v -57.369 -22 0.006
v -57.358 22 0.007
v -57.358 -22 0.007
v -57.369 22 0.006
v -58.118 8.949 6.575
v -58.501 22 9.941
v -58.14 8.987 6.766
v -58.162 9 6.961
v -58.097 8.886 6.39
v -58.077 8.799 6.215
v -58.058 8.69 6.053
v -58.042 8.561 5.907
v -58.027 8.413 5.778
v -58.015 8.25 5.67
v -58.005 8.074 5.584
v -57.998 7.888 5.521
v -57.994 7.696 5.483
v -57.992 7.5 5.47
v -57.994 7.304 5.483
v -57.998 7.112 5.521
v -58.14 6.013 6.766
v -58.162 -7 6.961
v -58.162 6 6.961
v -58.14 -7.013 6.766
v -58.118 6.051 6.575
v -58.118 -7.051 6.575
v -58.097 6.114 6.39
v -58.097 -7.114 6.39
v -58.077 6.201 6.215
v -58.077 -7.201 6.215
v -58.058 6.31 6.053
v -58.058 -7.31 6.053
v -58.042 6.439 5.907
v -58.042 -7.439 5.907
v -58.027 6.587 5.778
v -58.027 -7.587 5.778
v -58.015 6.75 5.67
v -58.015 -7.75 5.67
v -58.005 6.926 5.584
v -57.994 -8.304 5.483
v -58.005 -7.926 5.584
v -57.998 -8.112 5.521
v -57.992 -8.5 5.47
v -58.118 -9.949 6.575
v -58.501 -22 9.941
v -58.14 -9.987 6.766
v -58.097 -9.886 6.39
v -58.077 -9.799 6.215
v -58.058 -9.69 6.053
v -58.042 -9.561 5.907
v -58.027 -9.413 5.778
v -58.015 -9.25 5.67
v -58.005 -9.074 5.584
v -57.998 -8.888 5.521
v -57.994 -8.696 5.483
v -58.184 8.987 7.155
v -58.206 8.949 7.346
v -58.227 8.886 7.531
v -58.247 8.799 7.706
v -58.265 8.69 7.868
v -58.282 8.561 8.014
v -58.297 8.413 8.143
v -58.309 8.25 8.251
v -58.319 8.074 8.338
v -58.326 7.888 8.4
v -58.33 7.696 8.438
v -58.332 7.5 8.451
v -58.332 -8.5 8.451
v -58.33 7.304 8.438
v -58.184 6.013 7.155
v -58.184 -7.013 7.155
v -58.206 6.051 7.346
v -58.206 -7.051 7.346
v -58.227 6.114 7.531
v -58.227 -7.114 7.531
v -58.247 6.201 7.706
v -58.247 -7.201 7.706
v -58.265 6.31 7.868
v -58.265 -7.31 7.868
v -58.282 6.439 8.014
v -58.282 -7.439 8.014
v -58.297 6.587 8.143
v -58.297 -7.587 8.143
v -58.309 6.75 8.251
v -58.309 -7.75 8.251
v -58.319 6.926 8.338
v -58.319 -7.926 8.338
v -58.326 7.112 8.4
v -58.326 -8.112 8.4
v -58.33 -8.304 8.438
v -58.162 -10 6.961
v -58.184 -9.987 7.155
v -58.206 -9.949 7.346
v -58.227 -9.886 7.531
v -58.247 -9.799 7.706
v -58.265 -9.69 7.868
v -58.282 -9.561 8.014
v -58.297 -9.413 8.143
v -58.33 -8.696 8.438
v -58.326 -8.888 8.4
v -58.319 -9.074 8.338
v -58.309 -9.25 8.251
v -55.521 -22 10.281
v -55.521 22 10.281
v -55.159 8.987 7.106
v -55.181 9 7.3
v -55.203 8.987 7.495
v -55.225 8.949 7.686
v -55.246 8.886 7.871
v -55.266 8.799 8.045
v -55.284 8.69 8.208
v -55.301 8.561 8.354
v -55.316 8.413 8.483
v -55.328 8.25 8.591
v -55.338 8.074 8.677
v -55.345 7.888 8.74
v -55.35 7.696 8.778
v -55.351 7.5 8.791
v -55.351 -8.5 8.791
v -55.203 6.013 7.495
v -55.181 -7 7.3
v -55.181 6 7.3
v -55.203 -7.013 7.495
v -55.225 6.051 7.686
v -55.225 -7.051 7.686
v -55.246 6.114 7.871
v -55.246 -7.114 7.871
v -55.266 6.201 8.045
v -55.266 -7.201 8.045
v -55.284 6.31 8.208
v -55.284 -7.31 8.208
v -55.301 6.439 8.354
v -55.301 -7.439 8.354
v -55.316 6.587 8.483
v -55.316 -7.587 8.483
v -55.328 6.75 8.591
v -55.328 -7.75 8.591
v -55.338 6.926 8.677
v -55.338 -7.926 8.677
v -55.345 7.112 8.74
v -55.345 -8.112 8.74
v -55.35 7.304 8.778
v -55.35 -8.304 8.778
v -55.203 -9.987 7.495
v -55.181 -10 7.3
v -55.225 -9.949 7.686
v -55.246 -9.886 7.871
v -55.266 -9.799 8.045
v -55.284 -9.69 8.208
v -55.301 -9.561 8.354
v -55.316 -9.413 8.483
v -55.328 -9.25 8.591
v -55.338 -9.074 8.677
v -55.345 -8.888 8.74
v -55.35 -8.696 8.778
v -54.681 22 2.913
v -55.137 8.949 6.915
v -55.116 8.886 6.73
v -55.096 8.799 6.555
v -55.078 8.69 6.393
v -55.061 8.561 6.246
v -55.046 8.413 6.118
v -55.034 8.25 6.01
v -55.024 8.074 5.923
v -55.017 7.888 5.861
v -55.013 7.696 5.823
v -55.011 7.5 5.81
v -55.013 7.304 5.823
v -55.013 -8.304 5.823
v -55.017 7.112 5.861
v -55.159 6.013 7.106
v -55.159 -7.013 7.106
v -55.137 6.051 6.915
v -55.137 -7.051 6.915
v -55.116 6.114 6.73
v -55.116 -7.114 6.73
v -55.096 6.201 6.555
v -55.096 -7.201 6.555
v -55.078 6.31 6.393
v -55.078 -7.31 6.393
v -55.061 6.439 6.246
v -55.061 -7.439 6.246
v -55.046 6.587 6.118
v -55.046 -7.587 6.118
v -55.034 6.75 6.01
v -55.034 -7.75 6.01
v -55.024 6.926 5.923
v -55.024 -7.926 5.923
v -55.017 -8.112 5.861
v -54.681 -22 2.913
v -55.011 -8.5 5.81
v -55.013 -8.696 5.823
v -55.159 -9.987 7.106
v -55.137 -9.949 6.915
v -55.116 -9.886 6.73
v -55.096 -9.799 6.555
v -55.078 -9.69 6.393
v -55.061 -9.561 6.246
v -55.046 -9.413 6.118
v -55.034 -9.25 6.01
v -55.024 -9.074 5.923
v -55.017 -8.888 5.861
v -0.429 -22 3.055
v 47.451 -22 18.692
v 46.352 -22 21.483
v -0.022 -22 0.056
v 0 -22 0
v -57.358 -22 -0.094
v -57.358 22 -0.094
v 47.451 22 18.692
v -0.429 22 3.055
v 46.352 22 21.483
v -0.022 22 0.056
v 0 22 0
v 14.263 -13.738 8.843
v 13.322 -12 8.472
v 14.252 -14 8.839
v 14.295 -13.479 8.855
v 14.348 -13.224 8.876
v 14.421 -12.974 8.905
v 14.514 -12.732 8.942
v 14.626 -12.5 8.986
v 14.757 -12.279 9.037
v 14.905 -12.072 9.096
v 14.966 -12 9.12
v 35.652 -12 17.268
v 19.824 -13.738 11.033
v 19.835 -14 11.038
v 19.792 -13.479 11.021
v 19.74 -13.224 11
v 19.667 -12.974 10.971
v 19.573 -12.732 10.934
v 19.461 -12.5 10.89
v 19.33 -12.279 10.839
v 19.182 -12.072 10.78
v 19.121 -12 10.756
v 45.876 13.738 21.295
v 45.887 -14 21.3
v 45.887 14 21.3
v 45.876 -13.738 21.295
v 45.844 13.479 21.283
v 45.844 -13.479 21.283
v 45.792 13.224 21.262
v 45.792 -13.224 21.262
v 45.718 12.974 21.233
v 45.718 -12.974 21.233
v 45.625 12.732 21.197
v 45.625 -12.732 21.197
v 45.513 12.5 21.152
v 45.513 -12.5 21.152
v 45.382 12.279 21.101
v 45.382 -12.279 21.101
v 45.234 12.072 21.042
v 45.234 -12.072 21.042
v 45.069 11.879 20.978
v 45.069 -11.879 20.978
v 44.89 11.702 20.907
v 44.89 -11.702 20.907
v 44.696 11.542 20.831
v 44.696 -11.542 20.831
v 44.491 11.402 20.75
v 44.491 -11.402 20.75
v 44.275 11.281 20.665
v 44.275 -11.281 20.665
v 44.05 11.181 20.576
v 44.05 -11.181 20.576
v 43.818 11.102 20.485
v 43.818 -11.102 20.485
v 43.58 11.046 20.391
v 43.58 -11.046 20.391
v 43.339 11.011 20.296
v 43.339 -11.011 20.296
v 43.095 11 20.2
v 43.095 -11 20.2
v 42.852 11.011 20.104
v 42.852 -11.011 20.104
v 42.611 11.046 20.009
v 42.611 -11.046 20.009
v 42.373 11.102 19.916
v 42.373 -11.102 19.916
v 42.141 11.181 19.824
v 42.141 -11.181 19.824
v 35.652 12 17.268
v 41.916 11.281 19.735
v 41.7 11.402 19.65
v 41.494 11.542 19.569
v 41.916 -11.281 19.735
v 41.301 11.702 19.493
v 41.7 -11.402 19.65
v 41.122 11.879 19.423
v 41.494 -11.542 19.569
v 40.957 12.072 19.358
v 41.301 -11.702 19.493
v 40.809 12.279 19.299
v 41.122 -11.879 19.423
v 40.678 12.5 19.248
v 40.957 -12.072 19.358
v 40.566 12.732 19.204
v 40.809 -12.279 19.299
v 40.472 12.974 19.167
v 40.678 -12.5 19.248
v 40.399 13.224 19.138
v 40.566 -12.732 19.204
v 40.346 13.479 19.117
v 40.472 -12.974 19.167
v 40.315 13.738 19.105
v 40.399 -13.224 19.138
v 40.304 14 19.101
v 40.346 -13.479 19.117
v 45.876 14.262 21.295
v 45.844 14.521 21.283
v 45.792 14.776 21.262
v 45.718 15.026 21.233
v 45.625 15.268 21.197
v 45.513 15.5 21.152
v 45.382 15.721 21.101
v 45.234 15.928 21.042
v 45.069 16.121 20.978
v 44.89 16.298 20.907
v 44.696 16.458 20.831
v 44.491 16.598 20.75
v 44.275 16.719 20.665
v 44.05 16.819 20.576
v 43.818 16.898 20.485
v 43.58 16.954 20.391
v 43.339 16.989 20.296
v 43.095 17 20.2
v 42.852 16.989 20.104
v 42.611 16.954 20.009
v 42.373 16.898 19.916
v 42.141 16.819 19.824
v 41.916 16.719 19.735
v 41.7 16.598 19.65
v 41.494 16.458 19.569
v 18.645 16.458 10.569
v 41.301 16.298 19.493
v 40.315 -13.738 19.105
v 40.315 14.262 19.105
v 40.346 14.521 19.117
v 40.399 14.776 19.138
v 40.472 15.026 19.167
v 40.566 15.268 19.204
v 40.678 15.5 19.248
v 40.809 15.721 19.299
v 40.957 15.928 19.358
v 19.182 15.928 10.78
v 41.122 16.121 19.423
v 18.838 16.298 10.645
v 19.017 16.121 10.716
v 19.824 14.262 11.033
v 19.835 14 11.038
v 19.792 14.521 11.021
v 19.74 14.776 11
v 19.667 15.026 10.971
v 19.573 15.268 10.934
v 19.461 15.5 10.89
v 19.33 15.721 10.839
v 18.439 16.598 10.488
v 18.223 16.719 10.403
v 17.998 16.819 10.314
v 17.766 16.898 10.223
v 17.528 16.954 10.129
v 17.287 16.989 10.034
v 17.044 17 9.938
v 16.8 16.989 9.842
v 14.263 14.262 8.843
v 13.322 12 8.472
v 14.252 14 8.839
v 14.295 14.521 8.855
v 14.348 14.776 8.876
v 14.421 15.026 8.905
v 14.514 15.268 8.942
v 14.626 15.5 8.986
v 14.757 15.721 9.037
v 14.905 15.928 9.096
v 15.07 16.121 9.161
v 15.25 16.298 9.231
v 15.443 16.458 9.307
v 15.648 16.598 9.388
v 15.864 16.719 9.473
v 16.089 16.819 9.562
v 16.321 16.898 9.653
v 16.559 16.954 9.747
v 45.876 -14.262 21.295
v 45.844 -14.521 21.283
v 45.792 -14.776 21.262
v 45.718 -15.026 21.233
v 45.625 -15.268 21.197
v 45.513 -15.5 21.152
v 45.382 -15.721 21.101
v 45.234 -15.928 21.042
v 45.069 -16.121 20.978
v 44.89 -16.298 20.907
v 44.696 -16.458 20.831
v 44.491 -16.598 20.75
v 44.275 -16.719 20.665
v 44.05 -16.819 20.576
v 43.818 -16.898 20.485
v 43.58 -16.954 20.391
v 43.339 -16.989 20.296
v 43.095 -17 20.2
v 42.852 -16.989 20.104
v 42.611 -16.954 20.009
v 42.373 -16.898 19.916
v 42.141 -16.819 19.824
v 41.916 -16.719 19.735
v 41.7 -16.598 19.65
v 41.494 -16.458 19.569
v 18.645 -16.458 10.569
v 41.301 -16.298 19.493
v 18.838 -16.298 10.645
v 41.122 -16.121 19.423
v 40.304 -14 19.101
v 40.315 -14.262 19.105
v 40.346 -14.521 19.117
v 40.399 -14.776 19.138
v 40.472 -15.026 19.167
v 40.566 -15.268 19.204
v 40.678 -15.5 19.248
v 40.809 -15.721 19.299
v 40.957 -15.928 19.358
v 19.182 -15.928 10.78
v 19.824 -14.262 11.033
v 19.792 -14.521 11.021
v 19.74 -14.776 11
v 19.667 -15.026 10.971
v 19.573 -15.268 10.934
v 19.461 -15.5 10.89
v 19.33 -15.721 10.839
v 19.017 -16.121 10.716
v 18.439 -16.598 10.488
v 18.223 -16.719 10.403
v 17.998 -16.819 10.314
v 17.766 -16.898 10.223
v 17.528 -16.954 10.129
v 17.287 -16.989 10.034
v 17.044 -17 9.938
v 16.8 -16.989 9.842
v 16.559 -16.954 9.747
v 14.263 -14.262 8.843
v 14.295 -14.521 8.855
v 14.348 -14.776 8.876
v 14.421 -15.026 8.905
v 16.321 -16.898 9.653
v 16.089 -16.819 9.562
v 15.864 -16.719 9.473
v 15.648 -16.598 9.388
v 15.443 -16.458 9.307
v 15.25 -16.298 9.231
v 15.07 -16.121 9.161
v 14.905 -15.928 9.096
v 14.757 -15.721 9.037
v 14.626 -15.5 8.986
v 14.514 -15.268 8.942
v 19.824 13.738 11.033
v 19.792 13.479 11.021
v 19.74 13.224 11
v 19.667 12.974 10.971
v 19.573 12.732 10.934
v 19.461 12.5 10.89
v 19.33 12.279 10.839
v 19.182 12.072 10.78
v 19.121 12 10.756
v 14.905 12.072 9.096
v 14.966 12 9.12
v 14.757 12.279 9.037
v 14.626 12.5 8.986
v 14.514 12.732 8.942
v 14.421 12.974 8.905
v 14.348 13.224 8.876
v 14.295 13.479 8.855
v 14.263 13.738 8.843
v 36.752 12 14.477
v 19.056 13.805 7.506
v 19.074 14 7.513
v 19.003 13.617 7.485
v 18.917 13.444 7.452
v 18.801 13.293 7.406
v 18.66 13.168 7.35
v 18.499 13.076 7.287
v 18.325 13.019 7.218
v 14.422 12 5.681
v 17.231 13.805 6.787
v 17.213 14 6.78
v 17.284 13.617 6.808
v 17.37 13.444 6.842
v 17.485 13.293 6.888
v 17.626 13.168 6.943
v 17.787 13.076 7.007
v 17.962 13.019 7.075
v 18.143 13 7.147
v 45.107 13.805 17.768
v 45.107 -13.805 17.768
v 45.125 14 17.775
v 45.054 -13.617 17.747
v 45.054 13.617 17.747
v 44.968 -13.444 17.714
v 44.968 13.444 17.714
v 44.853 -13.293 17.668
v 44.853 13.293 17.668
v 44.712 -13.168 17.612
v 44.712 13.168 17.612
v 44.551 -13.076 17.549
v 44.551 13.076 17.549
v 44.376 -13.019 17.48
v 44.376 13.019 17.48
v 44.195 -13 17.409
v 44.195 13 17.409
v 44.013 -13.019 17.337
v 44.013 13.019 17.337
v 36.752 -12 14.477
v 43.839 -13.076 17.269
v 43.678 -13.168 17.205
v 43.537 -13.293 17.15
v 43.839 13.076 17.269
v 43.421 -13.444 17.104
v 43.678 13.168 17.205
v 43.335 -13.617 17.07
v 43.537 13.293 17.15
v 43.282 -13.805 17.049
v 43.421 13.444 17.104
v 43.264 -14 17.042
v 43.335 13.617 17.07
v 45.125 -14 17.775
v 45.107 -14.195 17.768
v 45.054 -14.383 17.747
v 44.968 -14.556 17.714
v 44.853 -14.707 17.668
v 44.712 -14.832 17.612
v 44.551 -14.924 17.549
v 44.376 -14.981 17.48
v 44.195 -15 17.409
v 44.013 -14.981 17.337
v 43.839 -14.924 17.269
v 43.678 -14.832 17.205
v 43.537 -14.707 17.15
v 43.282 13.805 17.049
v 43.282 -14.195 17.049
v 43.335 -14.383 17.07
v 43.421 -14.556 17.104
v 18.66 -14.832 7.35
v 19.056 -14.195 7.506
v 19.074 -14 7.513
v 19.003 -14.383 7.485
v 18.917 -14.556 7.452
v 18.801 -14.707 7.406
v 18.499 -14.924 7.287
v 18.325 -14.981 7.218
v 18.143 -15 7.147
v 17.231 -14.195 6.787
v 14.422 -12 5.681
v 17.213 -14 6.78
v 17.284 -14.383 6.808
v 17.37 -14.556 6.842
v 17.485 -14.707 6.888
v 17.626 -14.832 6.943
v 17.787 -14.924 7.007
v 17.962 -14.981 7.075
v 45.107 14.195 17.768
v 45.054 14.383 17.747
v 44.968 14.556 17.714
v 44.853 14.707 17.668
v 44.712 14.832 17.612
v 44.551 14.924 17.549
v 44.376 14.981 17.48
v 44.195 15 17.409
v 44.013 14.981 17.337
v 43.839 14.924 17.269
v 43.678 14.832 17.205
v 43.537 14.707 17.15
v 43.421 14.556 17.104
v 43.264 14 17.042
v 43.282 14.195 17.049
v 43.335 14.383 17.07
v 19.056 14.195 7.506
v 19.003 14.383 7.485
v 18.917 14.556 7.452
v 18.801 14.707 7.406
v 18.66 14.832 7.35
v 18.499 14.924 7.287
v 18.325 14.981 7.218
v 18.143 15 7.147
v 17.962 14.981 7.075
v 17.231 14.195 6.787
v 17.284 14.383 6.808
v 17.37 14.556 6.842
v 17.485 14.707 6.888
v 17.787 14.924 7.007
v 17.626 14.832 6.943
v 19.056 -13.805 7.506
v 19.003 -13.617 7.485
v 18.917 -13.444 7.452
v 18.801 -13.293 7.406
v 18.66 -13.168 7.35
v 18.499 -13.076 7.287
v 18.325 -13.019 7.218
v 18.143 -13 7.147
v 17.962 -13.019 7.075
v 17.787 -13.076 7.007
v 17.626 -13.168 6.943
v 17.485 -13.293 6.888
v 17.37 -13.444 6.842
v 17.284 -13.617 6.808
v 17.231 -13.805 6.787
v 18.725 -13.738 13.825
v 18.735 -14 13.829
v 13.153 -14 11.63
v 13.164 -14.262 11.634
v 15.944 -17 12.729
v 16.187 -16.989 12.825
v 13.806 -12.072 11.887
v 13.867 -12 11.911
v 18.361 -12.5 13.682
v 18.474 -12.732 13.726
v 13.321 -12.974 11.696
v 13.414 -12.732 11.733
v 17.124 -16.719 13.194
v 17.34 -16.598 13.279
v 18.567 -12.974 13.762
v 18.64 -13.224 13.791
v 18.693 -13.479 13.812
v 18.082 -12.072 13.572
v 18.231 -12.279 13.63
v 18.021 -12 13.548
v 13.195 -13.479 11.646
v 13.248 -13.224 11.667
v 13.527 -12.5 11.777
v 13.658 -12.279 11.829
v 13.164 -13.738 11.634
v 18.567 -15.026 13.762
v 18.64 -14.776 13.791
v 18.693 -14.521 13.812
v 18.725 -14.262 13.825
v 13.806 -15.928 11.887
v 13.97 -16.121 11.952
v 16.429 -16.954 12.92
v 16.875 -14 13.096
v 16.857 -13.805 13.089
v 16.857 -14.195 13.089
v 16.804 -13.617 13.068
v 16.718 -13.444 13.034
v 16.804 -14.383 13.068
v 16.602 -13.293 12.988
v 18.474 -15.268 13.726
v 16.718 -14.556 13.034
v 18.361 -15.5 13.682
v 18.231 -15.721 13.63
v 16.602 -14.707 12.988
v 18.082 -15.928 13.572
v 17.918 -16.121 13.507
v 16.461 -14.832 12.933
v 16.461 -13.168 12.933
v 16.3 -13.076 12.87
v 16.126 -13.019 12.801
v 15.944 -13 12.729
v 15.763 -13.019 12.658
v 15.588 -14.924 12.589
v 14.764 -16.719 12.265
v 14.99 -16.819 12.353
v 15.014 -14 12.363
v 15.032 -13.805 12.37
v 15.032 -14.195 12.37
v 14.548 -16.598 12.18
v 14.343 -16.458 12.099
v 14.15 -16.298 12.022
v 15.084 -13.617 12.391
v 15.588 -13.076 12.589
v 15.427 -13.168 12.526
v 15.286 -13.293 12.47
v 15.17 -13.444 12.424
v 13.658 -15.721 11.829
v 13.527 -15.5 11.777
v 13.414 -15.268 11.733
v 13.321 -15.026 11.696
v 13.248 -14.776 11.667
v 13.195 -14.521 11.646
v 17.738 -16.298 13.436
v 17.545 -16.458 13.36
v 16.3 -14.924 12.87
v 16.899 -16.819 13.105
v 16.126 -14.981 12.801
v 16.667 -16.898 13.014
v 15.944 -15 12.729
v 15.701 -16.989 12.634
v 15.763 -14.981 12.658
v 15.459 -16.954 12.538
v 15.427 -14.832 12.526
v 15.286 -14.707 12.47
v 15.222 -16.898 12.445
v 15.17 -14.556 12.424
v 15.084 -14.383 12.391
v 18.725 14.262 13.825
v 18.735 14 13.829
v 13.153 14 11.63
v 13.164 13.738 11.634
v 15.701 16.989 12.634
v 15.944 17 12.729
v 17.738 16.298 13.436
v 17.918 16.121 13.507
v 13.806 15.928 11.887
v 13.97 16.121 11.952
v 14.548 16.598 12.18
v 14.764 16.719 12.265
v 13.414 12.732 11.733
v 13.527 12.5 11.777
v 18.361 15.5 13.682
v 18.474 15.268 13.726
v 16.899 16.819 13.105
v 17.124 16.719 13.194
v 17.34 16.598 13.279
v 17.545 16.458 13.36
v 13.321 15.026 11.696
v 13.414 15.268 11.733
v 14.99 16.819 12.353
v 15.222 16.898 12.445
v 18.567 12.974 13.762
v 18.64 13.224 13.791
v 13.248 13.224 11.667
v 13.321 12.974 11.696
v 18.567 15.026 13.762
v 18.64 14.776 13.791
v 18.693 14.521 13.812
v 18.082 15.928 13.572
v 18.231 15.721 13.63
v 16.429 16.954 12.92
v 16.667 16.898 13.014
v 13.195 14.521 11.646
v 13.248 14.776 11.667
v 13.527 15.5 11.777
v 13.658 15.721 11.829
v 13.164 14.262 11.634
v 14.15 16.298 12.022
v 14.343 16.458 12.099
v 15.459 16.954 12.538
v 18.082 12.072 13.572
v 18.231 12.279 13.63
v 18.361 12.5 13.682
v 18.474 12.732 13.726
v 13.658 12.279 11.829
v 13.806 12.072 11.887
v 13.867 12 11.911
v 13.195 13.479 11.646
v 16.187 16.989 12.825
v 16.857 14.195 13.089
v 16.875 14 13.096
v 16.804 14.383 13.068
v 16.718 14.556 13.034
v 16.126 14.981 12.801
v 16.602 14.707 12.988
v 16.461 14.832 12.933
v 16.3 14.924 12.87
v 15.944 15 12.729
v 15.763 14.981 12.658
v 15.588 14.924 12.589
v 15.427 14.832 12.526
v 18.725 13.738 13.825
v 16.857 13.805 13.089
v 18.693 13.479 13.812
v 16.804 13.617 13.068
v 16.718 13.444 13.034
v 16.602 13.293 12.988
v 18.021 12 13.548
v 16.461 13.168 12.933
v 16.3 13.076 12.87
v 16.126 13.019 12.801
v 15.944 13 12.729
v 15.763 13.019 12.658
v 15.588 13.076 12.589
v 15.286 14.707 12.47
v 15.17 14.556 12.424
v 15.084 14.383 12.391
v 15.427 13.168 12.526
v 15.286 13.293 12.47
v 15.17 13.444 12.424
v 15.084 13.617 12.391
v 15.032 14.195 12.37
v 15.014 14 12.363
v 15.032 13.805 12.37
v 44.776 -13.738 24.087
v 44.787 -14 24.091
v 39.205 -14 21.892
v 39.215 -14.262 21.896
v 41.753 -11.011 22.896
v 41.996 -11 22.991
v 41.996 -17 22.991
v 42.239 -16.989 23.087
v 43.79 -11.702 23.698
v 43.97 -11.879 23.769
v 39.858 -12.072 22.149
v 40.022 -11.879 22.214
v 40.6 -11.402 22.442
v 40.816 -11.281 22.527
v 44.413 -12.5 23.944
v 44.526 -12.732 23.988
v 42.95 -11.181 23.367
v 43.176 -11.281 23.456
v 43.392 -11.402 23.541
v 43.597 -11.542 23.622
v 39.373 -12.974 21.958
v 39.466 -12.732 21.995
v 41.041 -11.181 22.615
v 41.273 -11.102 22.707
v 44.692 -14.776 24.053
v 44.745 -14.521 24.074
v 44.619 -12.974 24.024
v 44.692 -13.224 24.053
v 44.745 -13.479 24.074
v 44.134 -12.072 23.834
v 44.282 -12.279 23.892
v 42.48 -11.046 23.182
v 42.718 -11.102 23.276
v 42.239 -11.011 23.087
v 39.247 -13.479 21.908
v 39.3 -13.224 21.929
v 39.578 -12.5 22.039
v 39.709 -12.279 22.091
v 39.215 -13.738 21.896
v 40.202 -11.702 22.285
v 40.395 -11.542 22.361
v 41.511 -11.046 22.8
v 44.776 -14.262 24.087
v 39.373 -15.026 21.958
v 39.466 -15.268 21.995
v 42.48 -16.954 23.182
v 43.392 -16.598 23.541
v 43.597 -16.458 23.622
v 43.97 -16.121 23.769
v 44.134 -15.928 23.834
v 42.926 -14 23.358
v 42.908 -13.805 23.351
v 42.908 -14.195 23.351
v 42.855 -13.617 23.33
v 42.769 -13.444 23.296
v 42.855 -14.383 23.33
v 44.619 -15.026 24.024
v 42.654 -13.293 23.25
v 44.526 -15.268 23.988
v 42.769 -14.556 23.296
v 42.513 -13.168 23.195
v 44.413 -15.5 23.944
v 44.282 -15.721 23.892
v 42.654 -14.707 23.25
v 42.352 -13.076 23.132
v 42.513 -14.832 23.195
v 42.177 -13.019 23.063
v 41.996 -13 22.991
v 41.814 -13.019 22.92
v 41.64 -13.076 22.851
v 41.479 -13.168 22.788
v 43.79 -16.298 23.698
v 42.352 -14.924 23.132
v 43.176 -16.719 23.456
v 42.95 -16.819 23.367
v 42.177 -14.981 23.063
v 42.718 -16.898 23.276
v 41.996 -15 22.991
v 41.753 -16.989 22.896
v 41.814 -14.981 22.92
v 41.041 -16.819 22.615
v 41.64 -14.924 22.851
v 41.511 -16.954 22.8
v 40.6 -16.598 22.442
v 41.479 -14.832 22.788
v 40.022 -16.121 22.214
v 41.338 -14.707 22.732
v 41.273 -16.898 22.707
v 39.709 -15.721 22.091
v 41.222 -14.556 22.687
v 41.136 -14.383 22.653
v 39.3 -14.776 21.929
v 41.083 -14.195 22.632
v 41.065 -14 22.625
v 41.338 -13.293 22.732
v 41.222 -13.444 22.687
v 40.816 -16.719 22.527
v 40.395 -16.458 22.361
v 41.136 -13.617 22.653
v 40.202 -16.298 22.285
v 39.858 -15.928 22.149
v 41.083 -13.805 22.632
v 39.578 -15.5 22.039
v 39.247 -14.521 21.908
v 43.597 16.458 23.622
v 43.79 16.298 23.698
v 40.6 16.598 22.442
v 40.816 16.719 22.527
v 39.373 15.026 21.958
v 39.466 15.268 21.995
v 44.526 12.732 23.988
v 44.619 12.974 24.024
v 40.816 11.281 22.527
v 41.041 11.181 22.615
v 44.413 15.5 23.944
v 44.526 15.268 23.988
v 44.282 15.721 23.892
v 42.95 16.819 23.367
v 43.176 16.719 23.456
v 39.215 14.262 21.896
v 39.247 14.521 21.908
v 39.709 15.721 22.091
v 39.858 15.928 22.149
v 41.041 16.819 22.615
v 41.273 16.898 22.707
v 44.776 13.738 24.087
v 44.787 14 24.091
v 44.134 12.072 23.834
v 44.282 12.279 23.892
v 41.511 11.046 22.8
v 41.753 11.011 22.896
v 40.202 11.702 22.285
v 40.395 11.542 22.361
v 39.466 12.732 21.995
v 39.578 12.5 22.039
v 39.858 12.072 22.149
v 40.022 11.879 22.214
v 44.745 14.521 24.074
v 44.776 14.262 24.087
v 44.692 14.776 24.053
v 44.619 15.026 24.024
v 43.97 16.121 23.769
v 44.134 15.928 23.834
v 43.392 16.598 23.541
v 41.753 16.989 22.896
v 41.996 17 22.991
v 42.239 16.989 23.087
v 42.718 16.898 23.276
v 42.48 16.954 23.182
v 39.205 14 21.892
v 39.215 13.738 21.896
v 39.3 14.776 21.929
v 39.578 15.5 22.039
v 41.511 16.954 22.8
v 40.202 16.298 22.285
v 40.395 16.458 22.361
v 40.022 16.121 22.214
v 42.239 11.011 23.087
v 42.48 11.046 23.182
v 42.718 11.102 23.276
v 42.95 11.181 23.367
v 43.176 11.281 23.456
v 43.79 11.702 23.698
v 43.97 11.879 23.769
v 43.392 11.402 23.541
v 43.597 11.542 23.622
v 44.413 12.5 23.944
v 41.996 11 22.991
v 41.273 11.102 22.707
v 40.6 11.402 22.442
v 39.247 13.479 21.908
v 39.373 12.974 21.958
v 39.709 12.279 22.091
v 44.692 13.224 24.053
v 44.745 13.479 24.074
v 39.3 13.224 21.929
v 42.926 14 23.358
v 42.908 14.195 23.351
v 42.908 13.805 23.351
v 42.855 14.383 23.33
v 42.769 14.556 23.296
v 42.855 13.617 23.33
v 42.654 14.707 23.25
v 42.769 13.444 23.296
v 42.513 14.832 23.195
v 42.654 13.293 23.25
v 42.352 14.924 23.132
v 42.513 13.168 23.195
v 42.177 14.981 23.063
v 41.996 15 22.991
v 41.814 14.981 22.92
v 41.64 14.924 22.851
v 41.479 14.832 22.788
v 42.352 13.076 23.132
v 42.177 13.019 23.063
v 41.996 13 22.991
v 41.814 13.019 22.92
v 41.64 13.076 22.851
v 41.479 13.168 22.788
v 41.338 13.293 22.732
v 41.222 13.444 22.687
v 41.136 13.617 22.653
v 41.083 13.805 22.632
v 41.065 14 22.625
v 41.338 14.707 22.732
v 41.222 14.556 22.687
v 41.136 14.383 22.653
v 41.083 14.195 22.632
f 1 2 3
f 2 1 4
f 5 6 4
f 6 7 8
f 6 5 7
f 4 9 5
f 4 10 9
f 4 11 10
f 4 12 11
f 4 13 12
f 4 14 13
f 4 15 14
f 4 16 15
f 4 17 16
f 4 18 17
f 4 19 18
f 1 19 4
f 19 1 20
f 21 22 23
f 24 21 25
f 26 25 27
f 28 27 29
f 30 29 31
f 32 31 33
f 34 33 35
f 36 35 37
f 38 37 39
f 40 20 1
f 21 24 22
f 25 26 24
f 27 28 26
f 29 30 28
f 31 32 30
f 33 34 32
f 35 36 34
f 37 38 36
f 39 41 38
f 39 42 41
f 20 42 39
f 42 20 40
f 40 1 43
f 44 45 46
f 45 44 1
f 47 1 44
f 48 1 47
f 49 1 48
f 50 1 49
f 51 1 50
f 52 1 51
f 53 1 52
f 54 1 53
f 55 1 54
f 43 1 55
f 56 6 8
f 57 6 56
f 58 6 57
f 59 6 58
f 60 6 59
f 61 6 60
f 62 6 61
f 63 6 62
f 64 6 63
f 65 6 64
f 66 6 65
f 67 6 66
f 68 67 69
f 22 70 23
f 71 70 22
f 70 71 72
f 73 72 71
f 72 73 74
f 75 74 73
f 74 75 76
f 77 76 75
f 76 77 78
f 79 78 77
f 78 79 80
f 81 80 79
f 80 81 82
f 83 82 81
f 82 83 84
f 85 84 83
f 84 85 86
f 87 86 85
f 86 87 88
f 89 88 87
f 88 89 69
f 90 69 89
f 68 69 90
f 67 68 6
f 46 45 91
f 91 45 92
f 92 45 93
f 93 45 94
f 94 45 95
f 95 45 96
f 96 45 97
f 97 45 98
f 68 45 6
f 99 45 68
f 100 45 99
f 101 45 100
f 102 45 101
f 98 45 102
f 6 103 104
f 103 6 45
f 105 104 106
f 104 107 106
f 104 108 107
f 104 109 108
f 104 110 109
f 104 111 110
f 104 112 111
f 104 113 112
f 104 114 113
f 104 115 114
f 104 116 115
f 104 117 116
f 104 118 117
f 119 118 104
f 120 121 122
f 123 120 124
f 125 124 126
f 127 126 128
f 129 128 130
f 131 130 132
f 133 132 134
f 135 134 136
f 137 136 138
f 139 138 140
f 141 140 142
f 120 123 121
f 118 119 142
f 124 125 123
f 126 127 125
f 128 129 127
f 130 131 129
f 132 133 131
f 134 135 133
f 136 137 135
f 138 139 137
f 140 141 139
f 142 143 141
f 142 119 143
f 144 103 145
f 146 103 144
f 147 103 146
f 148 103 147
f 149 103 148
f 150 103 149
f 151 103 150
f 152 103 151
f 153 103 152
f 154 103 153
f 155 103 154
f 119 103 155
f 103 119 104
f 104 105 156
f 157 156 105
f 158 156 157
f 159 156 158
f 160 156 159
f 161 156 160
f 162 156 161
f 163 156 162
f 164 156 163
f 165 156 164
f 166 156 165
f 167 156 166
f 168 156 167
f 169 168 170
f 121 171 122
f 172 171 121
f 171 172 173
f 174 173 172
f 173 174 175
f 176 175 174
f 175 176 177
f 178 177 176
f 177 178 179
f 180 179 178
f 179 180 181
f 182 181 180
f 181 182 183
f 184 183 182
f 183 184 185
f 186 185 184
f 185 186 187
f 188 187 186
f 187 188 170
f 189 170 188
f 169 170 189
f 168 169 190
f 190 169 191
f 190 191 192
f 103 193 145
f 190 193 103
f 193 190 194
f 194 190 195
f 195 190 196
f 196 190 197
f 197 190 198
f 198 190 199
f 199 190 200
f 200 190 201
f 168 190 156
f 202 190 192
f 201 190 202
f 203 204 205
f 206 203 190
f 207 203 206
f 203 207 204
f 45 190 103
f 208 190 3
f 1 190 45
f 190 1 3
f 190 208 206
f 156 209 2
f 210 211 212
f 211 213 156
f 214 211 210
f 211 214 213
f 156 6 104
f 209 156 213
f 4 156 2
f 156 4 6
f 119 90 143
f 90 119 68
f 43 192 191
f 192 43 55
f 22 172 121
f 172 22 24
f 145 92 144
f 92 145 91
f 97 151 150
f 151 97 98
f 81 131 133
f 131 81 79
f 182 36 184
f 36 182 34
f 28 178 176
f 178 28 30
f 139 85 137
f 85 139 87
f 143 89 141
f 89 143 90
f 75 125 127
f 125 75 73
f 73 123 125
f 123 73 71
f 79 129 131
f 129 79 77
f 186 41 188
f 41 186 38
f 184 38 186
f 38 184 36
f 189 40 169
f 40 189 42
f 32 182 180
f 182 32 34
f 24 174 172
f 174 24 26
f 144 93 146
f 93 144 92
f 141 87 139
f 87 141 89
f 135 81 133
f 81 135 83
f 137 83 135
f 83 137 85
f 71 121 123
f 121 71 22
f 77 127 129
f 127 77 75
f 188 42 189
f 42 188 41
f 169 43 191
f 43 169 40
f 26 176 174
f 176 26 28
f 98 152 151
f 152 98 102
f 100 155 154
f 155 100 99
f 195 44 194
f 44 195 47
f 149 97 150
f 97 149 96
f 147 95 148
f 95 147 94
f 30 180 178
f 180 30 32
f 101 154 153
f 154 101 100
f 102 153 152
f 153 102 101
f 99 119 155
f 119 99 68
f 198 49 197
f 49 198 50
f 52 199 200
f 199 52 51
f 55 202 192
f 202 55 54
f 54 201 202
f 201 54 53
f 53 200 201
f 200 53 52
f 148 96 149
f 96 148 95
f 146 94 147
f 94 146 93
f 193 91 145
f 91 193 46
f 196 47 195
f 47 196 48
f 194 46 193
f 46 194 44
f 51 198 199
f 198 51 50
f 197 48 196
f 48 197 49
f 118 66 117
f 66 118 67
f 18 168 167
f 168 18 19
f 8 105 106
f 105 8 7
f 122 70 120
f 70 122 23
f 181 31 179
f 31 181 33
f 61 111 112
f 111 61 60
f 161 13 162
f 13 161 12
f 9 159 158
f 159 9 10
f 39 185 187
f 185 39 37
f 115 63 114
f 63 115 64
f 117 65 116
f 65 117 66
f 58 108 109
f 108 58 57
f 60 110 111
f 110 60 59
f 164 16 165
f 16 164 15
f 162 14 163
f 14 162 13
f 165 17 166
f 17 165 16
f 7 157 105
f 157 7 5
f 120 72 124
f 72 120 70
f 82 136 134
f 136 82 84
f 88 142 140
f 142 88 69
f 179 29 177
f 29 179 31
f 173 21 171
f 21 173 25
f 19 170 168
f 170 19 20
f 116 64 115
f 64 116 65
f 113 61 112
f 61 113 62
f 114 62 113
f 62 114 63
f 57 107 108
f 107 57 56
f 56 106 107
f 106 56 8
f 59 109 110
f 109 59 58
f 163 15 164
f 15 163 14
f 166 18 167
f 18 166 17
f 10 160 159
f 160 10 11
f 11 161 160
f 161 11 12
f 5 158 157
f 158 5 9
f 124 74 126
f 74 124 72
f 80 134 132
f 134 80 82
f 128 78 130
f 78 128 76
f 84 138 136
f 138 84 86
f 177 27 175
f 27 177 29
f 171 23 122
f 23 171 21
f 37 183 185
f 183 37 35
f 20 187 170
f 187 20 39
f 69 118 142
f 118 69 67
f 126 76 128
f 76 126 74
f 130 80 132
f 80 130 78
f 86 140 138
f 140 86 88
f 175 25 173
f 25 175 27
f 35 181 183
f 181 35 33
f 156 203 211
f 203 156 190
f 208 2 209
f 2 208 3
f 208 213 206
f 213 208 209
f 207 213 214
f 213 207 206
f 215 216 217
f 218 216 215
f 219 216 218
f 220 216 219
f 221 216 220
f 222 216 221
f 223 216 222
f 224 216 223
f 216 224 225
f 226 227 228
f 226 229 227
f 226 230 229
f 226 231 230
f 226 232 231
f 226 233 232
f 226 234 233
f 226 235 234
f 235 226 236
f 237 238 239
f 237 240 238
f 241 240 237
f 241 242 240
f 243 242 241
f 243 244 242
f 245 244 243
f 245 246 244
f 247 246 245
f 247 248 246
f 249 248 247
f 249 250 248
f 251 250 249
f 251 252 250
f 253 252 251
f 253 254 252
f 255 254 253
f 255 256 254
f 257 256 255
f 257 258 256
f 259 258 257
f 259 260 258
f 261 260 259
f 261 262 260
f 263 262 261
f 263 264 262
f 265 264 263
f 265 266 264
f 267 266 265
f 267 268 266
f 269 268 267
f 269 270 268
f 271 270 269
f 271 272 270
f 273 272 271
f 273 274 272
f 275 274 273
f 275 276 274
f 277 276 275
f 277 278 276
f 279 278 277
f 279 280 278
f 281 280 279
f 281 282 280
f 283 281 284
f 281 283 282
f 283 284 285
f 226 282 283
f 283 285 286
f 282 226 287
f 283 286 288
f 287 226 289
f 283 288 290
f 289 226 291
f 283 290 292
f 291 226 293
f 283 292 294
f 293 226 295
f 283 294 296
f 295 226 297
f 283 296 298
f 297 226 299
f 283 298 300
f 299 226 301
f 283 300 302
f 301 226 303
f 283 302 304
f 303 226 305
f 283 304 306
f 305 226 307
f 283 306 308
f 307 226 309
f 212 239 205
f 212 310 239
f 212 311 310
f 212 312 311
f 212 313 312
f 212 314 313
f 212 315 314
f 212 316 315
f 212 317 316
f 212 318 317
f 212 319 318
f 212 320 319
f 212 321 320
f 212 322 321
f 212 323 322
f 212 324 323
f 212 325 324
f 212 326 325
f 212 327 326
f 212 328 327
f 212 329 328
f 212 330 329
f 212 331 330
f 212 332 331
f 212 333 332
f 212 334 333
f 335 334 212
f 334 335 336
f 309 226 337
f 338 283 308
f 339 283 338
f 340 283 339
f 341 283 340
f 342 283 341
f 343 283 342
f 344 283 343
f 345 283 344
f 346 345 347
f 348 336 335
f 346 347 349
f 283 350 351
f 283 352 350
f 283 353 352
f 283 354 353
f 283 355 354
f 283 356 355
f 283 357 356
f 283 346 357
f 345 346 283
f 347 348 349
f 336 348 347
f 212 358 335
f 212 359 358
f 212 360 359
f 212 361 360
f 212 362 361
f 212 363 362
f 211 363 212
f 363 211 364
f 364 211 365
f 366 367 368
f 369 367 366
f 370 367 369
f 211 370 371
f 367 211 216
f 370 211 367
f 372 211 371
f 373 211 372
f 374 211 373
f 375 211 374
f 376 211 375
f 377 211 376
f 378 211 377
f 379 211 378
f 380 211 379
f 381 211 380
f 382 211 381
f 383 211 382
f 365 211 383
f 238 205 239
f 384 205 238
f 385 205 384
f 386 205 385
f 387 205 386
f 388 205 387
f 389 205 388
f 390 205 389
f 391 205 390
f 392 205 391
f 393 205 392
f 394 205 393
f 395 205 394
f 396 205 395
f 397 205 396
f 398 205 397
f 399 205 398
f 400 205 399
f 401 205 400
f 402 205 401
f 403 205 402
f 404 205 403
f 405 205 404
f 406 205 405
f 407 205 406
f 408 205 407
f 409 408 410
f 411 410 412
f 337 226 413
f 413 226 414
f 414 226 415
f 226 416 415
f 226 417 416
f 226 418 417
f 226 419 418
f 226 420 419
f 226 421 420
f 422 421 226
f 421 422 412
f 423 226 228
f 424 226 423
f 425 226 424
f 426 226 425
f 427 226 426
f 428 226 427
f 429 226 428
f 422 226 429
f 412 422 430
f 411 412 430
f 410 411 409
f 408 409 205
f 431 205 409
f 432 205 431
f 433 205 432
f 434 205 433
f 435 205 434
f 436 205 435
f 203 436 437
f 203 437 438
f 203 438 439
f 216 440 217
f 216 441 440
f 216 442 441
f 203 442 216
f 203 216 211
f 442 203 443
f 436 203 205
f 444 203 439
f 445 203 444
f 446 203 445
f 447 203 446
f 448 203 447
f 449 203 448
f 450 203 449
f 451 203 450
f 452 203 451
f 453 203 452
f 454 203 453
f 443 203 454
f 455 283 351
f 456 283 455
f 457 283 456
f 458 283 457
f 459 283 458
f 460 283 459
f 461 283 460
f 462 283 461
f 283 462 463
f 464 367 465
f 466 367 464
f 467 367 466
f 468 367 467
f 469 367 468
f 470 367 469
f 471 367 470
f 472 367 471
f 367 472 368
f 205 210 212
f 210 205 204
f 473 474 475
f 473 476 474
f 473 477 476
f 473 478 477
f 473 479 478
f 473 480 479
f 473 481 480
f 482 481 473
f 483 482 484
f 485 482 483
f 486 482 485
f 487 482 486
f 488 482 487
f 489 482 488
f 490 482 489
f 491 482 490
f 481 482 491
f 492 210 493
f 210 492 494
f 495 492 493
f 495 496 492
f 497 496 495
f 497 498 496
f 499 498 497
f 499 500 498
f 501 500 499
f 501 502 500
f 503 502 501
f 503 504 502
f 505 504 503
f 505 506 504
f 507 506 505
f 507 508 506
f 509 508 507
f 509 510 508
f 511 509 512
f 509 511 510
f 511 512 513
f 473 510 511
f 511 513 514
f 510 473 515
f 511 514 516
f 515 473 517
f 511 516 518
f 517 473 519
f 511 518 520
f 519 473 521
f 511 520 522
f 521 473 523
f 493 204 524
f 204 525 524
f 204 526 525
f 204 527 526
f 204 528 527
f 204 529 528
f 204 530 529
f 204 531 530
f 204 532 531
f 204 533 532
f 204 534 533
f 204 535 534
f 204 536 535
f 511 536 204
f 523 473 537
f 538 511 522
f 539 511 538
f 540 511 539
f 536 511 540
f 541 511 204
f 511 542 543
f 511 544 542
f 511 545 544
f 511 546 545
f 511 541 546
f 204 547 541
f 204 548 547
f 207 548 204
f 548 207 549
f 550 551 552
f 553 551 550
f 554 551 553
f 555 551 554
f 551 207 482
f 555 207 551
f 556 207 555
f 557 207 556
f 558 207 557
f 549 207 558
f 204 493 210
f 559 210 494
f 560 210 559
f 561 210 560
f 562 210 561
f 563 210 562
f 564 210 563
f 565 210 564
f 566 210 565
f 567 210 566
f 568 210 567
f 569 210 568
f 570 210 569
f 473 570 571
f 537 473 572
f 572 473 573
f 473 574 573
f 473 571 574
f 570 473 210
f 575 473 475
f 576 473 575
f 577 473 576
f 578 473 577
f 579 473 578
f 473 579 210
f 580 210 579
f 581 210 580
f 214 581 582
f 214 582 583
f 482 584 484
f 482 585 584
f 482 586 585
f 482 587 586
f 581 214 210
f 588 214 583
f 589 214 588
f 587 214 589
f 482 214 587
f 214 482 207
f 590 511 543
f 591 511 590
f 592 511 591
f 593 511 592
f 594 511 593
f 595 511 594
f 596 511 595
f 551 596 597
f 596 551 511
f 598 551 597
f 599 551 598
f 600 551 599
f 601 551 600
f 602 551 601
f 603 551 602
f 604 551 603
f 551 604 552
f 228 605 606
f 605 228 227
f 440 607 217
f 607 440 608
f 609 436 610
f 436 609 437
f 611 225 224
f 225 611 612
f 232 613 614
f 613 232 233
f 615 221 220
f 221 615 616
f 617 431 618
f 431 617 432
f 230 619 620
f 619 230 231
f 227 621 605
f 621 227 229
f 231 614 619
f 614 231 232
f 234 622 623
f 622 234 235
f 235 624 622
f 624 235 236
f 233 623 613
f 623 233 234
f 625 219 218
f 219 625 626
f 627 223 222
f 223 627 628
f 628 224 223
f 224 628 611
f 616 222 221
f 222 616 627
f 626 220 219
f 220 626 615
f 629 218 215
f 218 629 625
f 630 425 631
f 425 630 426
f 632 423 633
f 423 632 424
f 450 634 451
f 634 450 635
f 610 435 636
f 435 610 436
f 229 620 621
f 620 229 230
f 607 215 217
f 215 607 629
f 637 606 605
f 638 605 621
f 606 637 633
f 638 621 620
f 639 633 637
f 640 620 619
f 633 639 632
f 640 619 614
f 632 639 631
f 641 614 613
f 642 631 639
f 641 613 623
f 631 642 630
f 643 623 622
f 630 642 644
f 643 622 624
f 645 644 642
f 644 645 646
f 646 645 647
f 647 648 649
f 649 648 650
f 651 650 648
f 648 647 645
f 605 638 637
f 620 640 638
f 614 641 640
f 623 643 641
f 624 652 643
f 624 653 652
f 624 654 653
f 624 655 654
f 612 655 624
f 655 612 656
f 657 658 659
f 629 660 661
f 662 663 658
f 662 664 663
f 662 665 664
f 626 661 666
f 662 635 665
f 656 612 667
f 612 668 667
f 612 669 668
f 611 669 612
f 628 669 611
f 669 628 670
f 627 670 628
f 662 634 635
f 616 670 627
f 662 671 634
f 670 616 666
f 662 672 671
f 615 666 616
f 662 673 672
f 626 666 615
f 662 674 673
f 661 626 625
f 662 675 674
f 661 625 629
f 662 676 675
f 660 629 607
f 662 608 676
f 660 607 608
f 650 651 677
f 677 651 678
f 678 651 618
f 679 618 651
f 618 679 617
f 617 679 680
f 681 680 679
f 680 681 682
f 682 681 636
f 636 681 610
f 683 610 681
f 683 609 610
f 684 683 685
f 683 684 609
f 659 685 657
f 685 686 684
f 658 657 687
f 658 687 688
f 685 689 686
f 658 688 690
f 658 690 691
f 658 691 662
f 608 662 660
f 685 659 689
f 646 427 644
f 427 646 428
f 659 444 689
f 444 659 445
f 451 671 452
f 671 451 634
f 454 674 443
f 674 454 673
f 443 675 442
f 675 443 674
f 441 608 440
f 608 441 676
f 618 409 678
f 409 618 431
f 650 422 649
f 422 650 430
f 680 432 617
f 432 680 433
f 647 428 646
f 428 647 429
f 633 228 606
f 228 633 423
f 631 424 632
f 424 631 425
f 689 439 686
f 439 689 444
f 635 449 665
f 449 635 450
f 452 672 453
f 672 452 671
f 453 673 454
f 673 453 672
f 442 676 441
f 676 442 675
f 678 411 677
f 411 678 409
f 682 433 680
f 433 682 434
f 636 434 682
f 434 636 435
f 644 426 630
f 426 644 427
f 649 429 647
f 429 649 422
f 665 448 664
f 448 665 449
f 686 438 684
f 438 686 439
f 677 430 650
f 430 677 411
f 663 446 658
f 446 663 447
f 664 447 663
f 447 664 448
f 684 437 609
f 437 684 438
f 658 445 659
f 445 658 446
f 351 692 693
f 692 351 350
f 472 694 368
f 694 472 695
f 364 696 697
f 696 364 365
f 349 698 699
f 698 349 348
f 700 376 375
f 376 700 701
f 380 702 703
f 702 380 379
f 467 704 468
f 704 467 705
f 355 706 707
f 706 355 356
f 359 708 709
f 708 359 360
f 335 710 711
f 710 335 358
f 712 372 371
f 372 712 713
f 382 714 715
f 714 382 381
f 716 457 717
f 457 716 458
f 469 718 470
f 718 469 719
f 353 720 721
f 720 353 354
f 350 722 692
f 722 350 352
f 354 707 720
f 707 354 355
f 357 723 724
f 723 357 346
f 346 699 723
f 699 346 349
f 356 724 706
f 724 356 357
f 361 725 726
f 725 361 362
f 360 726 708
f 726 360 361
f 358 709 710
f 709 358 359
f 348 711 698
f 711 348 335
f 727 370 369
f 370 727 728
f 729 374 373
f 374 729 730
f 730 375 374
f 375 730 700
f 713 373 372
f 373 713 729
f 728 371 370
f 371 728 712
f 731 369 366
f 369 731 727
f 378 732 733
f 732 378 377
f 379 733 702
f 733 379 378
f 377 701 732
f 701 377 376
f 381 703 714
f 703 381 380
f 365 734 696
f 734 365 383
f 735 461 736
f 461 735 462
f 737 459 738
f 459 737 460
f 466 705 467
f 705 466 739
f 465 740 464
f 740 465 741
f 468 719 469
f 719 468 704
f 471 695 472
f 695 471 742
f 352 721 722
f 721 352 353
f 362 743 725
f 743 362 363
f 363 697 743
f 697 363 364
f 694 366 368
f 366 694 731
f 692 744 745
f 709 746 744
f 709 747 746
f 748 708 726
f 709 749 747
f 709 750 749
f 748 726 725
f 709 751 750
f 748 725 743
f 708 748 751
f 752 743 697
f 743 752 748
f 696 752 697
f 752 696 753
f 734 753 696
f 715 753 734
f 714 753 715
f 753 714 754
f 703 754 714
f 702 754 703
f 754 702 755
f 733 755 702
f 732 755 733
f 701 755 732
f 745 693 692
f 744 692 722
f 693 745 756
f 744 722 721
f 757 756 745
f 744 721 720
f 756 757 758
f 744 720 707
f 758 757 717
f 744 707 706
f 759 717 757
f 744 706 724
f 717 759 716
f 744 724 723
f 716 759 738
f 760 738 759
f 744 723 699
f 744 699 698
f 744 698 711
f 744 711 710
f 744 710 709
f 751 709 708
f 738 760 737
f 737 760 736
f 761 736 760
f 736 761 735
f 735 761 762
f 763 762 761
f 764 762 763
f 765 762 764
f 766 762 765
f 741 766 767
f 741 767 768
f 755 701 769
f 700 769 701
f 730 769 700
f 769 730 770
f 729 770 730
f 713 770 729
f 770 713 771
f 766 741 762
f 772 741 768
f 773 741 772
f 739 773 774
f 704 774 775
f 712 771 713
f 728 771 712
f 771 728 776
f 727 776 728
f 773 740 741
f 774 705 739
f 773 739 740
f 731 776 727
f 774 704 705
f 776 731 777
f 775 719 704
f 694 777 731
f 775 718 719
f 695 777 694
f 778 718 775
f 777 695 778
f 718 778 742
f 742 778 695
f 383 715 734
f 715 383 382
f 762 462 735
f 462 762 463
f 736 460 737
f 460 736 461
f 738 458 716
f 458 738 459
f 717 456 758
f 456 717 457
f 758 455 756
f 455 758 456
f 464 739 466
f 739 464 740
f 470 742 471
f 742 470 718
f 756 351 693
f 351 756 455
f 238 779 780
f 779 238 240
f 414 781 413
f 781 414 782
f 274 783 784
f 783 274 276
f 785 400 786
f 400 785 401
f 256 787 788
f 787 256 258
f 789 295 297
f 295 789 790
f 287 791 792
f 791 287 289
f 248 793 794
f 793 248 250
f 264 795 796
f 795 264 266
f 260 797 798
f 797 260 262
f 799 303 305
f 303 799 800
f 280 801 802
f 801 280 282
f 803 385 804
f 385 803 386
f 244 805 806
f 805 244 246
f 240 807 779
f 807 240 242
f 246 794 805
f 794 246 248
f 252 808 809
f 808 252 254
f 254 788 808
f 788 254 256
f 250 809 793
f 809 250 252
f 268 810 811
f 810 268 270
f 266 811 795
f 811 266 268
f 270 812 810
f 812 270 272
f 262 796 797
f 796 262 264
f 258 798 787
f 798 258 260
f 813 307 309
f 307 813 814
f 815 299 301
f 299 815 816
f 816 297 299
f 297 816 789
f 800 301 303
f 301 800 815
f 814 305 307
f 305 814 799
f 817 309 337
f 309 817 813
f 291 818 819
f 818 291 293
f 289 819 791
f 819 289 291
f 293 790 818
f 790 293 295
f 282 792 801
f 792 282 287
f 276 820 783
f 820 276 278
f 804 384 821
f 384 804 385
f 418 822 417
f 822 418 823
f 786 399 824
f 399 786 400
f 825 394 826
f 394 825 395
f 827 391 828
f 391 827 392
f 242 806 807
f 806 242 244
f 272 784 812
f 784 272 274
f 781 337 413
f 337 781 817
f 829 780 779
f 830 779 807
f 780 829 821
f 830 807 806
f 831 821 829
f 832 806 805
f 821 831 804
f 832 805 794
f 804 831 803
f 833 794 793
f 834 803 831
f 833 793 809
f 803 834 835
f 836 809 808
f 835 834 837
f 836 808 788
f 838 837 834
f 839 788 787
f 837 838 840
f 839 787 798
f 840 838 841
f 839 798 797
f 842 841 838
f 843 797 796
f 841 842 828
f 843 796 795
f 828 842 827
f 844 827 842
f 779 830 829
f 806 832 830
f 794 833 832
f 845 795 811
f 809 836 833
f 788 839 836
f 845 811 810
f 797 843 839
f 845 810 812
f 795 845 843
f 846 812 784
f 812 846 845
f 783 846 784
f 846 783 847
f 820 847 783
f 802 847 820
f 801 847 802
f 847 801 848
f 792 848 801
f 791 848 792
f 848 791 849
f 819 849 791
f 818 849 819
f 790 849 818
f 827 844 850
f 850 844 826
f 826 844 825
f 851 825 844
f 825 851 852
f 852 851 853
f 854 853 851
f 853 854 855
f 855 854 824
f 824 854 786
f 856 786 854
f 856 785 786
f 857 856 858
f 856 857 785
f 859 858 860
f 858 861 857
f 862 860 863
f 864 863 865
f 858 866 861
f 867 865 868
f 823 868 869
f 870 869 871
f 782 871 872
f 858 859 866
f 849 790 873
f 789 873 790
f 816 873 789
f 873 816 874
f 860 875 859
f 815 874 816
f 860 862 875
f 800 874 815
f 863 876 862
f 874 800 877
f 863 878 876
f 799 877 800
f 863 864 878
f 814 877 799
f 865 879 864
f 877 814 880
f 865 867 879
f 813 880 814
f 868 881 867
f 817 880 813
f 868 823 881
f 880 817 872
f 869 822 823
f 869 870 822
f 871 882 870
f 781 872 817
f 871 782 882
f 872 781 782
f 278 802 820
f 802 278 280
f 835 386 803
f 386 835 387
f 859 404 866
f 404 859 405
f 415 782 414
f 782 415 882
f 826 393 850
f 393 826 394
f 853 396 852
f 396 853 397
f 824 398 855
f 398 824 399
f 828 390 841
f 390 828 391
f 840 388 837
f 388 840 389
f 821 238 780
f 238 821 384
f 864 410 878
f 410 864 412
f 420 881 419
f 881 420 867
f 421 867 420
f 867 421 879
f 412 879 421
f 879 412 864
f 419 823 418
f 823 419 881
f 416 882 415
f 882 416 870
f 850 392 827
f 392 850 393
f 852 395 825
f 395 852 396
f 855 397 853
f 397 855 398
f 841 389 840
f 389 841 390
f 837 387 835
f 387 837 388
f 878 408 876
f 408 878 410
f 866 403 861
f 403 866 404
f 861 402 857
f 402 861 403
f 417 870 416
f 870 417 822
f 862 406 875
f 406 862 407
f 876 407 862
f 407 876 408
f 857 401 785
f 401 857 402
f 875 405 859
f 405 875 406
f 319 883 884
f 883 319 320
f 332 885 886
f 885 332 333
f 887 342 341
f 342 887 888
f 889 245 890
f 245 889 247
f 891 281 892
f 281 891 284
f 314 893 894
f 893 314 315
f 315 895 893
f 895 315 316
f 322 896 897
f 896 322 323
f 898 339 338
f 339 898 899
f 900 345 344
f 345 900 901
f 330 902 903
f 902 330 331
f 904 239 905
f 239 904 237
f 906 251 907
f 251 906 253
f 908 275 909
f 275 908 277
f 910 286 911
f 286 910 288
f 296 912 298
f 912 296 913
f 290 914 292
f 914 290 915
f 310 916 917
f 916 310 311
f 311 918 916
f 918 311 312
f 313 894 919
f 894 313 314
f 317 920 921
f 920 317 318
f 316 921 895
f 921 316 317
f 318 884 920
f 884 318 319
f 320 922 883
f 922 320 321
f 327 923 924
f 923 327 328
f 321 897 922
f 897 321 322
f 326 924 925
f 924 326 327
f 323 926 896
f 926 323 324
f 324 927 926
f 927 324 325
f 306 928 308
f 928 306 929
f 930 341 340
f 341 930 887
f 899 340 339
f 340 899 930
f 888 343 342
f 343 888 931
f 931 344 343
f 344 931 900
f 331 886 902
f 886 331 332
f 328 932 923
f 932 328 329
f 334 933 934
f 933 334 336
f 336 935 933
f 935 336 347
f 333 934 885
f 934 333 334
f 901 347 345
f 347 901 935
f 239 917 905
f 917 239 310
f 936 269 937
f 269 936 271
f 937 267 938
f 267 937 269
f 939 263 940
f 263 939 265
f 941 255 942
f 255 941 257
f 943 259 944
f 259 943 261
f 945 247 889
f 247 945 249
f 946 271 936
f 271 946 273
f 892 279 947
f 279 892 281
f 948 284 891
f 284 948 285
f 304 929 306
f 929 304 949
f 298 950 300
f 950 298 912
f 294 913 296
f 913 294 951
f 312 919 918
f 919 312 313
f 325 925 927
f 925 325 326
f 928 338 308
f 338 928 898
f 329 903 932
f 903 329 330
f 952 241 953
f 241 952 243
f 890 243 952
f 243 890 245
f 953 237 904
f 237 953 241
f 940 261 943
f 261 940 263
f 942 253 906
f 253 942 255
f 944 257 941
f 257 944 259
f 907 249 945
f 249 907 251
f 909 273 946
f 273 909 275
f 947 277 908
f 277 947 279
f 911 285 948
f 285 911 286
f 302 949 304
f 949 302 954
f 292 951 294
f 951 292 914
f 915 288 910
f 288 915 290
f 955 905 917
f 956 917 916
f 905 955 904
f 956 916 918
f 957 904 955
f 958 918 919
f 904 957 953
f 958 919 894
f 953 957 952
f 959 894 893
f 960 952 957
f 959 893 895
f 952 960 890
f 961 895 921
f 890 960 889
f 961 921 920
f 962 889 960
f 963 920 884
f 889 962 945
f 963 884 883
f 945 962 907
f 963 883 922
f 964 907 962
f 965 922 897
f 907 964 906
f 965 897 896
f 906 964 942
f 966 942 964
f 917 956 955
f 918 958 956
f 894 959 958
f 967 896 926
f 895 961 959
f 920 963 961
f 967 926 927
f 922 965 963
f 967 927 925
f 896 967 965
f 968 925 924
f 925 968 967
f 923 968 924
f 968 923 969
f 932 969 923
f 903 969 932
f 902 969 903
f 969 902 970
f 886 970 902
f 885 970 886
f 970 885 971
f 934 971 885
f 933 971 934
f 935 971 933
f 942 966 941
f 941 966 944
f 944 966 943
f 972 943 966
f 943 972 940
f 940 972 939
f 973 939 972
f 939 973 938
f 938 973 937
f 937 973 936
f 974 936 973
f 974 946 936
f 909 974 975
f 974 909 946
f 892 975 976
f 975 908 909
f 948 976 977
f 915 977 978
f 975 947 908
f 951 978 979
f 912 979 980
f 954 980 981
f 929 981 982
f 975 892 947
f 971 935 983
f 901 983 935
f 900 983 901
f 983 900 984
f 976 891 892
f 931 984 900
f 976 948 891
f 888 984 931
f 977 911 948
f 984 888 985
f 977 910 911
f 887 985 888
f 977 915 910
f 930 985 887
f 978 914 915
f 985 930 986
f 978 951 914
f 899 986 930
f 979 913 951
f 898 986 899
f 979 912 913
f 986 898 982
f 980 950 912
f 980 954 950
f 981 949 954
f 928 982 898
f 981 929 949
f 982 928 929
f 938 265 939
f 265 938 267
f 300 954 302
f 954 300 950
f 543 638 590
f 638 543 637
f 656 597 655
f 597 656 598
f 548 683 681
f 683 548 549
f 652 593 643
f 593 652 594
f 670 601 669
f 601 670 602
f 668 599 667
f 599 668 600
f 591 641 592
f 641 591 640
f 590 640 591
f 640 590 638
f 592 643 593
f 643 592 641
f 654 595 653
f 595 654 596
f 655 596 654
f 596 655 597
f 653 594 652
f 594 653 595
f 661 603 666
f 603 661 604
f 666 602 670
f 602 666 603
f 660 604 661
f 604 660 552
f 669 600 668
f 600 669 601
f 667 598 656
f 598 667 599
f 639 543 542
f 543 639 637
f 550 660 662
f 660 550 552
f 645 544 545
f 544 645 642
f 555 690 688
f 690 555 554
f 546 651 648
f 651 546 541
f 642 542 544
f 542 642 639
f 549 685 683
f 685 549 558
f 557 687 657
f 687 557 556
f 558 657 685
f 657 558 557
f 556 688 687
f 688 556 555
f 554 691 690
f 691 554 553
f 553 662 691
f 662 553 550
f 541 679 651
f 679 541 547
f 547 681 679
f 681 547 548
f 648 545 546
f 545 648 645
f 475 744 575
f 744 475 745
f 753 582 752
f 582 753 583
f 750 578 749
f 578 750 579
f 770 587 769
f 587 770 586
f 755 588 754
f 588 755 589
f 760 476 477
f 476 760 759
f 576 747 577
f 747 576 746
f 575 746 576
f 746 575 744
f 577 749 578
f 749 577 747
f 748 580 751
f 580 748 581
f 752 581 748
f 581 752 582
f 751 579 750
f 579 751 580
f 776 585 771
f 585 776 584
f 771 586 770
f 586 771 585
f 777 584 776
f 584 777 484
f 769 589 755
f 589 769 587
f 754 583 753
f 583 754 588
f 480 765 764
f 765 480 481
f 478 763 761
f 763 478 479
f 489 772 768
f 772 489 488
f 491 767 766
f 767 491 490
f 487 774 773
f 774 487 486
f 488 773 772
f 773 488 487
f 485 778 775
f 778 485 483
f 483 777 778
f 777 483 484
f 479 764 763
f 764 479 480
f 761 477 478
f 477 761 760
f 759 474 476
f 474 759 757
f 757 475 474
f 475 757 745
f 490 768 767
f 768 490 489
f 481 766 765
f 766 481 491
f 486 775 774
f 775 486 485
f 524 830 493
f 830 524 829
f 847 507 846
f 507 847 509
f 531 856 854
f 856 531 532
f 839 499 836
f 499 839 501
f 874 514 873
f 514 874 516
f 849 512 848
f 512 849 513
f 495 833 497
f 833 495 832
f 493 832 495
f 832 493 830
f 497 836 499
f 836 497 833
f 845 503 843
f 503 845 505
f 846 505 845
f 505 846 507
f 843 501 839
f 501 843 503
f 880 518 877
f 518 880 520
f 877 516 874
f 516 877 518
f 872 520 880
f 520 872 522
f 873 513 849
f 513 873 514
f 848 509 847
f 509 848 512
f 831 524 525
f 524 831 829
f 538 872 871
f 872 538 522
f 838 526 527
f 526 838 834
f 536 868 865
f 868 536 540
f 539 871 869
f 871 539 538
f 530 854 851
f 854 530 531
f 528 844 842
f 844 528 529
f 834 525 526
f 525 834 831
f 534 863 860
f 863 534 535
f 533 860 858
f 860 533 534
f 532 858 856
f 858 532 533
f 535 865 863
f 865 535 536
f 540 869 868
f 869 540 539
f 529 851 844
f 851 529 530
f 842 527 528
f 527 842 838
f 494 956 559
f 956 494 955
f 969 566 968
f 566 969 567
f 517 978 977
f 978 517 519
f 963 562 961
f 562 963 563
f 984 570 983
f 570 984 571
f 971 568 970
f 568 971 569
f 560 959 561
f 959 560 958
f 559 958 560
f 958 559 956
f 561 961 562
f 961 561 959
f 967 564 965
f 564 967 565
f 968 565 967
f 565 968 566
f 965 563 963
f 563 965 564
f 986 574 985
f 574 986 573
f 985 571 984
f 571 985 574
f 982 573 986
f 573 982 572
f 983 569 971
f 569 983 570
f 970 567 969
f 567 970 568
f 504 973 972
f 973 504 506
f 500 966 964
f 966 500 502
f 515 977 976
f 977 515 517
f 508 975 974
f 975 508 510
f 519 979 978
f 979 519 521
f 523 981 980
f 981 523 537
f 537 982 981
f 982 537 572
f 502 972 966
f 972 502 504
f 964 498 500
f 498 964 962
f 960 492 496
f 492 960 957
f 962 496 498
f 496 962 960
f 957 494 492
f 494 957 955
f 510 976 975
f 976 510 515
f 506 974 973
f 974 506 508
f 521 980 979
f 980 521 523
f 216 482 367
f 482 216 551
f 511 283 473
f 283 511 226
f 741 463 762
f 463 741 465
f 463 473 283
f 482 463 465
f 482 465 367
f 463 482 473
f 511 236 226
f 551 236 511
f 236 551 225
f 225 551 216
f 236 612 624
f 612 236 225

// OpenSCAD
// A Raspberry Pi camera mount.

$fs = .2;
$fa = 5;

// Dimensions of the camera board.
cameraWidth = 38;
cameraHeight = 38;
aperatureWidth = 22;
aperatureYOffset = 5.5;
cameraBoardThickness = 1;

holeYOffset = 9.5;
holeXSpacing = 28;
holeYSpacing = 28;
holeDiameter = 2;

standoffDiameter = 6;
standoffHeight = 3;

mountMargin = 3;
mountBottomMargin = 10; // To accommodate the cable.
mountWidth = cameraWidth + 2*mountMargin;
mountHeight = cameraHeight + mountMargin + mountBottomMargin;

mountThickness = 3;

baseWidth = 15;
mountingHoleSpacing = 15;
mountingHoleDiameter = 3;

aperatureMargin = 1;

maxModelSize = 30;

rotate([0,-21.5,0])
camMount();

module camMount() {
    union() {
 rotate([0,15,0]) translate([-54,0,6.5])mountBase();
mainMount();
cameraBoard();
}}

// The camera board.
module cameraBoard(){
%translate([mountBottomMargin, -cameraWidth/2, mountThickness+standoffHeight])
cube(size=[cameraHeight, cameraWidth, cameraBoardThickness]);
}

// The mount base.
module mountBase() {
    // connection between cam mount and base mount    
    translate([-3, -mountWidth/2, -.1])
    rotate([0,6.35,0])cube(size=[cameraHeight + mountMargin + mountBottomMargin+6.5,
             cameraWidth + 2*mountMargin,
         mountThickness]);
  
//screw mount
rotate([0, -90, 0])
difference() {
  translate([0, -mountWidth/2, 0])
  cube(size=[baseWidth + mountThickness-8.0, mountWidth, mountThickness]);
  
  translate([baseWidth/2 + mountThickness-3.5, -1-mountingHoleSpacing/2, 0])
  cylinder(d=mountingHoleDiameter, h=2*maxModelSize, center=true);
  
  translate([baseWidth/2 + mountThickness-3.5, mountingHoleSpacing/2, 0])
  cylinder(d=mountingHoleDiameter, h=2*maxModelSize, center=true);
}
}
// The main part of the mount.
module mainMount() {
difference() {
  union() {
  translate([0, -mountWidth/2, 0])
  cube(size=[cameraHeight + mountMargin + mountBottomMargin,
             cameraWidth + 2*mountMargin,
             mountThickness]);
  // mount standoffs
  translate([holeYOffset + mountBottomMargin, -holeXSpacing/2, mountThickness+standoffHeight/2])
  cylinder(d=standoffDiameter, h=standoffHeight, center=true);

  translate([holeYOffset + mountBottomMargin, holeXSpacing/2, mountThickness+standoffHeight/2])
  cylinder(d=standoffDiameter, h=standoffHeight, center=true);
  
  translate([holeYOffset + holeYSpacing + mountBottomMargin, -holeXSpacing/2, mountThickness+standoffHeight/2])
  cylinder(d=standoffDiameter, h=standoffHeight, center=true);
  
  translate([holeYOffset + holeYSpacing + mountBottomMargin, holeXSpacing/2, mountThickness+standoffHeight/2])
  cylinder(d=standoffDiameter, h=standoffHeight, center=true);
  }
  
  // mounting holes
  translate([holeYOffset + mountBottomMargin, -holeXSpacing/2, 0])
  cylinder(d=holeDiameter, h=2*maxModelSize, center=true);
  
  translate([holeYOffset + mountBottomMargin, holeXSpacing/2, 0])
  cylinder(d=holeDiameter, h=2*maxModelSize, center=true);
  
  translate([holeYOffset + holeYSpacing + mountBottomMargin, -holeXSpacing/2, 0])
  cylinder(d=holeDiameter, h=2*maxModelSize, center=true);
  
  translate([holeYOffset + holeYSpacing + mountBottomMargin, holeXSpacing/2, 0])
  cylinder(d=holeDiameter, h=2*maxModelSize, center=true);
  
  translate([mountBottomMargin + aperatureYOffset,
              -aperatureWidth/2 - aperatureMargin,
              -maxModelSize])
  cube(size=[aperatureWidth + 2*aperatureMargin,
             aperatureWidth + 2*aperatureMargin,
             2*maxModelSize]);
}
}
module rPiCSI (extra=0,addedW=0) {
    translate([-26.7,-20,0])
      rotate([0,0,0])
        cube([20+extra,0.5+addedW,50]);
}
